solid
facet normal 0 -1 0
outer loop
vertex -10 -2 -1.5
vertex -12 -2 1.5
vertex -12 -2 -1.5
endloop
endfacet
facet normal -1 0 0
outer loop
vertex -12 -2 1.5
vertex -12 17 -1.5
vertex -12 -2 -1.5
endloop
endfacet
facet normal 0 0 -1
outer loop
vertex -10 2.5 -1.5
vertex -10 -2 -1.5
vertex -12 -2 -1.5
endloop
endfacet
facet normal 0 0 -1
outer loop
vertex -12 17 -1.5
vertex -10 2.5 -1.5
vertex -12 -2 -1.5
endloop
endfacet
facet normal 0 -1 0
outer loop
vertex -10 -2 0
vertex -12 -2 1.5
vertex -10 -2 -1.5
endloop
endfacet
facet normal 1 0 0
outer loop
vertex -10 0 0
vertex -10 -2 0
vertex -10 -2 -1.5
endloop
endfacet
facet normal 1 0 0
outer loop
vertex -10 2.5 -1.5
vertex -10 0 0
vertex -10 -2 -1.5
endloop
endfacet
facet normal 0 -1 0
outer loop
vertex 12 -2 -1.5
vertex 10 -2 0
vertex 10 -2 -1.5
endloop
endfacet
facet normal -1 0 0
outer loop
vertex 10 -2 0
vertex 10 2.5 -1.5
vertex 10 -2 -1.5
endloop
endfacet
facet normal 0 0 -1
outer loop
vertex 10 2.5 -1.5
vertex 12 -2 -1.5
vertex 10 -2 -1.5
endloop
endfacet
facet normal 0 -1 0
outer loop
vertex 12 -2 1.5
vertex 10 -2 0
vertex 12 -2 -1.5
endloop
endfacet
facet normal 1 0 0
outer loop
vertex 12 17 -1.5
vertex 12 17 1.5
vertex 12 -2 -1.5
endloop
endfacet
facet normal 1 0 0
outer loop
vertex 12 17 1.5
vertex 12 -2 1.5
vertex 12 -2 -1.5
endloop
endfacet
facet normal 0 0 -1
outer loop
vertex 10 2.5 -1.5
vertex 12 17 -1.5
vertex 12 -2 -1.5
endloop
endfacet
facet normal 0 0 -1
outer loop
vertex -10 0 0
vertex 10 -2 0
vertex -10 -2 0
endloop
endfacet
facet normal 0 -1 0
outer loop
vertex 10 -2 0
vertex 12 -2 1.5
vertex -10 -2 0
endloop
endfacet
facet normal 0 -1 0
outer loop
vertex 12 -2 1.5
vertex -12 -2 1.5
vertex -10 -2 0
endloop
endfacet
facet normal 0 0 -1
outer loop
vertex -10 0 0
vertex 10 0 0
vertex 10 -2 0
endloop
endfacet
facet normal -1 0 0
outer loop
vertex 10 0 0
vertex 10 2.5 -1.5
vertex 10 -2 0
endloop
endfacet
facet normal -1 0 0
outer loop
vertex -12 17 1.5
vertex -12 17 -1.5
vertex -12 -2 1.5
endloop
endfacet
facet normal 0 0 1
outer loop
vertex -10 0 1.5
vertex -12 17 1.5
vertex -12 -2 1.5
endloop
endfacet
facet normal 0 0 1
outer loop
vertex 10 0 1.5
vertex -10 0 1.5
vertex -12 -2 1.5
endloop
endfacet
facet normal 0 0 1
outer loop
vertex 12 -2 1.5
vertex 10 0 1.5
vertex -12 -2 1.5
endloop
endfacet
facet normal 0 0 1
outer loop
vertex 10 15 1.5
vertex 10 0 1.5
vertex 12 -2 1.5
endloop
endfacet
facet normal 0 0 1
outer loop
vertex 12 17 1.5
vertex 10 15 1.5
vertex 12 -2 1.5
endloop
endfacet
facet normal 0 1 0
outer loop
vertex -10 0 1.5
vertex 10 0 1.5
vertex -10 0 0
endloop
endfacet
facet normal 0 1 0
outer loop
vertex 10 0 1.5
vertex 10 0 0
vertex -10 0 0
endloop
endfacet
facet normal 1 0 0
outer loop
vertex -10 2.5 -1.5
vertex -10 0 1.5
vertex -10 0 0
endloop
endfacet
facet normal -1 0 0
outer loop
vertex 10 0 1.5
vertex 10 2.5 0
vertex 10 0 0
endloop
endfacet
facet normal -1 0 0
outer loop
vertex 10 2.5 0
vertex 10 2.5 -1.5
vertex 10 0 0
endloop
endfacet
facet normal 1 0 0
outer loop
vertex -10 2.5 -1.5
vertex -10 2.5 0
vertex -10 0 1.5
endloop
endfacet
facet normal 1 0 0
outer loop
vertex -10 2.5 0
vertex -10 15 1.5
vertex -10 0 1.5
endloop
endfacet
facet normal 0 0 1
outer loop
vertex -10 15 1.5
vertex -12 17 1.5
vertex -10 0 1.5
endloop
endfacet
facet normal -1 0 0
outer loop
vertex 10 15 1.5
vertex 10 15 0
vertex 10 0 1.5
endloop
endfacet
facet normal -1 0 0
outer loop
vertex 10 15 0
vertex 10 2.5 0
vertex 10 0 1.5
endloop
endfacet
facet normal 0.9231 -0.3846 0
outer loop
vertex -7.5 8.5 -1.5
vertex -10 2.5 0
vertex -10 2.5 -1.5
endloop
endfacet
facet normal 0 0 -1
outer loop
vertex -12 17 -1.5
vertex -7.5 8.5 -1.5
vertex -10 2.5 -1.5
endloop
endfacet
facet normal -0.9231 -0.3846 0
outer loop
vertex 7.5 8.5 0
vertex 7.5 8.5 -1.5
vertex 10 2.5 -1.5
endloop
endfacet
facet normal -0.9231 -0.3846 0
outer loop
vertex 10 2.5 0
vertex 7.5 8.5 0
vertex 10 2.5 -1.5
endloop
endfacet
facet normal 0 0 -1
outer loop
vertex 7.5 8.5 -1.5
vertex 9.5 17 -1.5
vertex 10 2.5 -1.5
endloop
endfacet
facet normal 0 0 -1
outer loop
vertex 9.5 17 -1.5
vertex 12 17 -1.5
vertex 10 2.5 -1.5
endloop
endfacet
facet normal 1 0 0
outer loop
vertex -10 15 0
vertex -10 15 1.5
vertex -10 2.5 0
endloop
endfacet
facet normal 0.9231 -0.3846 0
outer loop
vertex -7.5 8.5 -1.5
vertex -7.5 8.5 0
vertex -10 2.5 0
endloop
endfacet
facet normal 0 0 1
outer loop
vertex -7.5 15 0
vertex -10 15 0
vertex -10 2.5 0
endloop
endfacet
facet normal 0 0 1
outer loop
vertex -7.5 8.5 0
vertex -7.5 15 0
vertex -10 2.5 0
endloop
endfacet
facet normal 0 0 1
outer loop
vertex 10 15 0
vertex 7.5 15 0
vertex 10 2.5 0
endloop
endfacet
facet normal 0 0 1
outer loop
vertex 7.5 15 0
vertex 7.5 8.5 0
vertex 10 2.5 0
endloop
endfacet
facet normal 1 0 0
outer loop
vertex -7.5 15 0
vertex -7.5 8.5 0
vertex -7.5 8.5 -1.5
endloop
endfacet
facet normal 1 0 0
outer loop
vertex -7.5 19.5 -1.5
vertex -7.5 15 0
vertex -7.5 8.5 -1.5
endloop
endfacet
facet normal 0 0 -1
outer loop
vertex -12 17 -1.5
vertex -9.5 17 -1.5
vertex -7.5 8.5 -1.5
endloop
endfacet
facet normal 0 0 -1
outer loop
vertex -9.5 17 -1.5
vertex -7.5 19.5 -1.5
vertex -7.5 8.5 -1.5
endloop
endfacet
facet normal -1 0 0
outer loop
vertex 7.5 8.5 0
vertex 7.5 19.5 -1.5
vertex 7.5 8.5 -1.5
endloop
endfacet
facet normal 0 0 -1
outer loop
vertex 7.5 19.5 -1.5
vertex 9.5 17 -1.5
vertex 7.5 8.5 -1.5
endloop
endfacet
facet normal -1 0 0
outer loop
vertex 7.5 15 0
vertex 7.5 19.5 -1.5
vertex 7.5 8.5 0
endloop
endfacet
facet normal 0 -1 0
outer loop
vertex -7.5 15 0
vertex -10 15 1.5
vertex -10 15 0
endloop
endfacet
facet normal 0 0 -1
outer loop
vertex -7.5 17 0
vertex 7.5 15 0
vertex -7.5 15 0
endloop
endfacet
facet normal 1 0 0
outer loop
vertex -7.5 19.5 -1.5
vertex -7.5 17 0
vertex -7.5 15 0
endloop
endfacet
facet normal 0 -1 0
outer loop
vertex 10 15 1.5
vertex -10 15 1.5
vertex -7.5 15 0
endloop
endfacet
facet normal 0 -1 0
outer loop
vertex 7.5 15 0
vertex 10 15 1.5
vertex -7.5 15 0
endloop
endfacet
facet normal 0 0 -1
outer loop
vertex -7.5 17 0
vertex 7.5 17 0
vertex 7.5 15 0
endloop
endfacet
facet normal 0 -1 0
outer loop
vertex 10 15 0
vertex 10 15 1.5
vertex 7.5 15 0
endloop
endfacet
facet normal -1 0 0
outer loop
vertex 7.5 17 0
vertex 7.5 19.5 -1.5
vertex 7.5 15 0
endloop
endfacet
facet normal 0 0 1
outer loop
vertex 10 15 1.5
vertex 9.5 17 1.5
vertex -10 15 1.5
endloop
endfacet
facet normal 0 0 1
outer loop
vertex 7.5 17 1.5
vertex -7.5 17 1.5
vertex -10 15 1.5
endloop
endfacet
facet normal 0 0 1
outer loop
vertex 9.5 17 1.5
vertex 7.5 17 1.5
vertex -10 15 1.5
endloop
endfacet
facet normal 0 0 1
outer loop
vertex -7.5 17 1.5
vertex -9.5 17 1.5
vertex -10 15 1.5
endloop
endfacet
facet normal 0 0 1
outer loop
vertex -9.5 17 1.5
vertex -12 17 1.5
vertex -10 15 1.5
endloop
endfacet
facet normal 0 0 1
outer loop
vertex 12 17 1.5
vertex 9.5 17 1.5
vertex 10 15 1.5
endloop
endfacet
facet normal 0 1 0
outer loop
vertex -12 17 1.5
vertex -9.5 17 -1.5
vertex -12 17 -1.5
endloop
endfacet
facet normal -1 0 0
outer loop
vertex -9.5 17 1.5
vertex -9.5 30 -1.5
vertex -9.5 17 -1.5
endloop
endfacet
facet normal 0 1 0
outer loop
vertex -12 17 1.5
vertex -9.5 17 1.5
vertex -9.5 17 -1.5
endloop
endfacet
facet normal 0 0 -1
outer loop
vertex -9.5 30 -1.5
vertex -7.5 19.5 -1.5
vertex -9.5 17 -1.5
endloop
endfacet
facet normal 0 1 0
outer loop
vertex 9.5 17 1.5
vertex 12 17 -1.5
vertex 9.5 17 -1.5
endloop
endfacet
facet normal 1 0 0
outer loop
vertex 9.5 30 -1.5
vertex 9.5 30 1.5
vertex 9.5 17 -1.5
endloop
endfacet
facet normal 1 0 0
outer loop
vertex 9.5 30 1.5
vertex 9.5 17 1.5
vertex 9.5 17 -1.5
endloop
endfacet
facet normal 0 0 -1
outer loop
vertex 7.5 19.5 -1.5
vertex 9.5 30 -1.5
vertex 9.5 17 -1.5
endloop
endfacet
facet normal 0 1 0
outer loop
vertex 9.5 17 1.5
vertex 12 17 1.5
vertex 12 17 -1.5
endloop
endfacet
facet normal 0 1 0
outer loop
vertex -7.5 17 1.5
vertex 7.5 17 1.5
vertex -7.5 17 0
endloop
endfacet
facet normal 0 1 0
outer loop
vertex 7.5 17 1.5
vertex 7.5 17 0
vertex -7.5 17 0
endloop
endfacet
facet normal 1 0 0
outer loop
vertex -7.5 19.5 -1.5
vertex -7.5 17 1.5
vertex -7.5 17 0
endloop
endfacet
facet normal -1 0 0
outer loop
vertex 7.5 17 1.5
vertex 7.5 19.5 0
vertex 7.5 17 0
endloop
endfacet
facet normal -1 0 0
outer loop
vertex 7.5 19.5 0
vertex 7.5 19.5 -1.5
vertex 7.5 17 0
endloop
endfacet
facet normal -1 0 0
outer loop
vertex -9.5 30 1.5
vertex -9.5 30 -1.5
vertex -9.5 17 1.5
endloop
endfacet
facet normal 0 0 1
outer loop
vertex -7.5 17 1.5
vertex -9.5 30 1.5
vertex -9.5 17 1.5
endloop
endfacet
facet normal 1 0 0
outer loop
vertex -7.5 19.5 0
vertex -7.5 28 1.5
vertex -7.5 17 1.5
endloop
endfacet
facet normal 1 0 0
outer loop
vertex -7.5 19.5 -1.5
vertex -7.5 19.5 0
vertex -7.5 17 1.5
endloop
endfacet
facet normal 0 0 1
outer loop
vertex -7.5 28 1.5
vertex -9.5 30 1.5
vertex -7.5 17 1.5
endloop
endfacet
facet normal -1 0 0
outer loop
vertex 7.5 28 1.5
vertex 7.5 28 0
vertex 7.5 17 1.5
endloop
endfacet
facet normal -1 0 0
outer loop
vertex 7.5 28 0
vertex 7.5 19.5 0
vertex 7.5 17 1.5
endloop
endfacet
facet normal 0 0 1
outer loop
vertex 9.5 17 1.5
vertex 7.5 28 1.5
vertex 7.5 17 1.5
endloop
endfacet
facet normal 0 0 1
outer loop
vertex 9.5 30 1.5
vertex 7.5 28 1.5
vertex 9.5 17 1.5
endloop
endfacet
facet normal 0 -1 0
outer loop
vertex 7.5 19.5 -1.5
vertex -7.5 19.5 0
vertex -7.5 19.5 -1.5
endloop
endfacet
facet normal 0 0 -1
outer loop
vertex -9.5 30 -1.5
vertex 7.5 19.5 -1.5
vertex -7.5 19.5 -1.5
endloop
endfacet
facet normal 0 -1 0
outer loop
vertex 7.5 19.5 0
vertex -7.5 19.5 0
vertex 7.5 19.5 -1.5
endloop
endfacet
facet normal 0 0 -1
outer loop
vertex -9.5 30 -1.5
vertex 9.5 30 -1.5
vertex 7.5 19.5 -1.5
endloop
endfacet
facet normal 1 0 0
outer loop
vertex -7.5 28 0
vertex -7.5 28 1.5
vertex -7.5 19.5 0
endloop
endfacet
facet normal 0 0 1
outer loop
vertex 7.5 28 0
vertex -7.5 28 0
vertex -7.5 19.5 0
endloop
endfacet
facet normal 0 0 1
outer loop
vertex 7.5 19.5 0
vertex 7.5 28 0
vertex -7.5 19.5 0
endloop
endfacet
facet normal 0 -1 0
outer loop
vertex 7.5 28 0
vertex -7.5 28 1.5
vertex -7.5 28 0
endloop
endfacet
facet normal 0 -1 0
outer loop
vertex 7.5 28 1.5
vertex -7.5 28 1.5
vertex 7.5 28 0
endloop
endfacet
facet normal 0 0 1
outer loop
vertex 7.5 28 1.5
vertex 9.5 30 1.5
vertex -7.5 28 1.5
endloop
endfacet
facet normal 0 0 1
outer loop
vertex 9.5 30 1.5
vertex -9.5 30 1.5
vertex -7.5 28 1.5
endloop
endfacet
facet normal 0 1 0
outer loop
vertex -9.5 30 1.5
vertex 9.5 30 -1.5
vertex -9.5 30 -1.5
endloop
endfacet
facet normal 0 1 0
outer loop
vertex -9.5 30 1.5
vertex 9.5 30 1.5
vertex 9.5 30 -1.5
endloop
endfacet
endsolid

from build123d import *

# Parameters (mm, degrees)
ESBO_O1_W                = 20
ESBO_O1_H                = 15
ESBO_O1_W_2              = 15
ESBO_O1_H_2              = 11
RESSALTO_EXTRUS_O1_DEPTH = 1.5
RESSALTO_EXTRUS_O2_DEPTH = 1.5


with BuildPart() as part:
    # Esboço1 → Ressalto-extrusão1 (new body)
    with BuildSketch(Plane.XY):
        Polygon((12, -2), (12, 17), (9.5, 17), (9.5, 30), (-9.5, 30), (-9.5, 17), (-12, 17), (-12, -2), align=None)
        with Locations((0, 7.5)):
            Rectangle(ESBO_O1_W, ESBO_O1_H, mode=Mode.SUBTRACT)
        with Locations((0, 22.5)):
            Rectangle(ESBO_O1_W_2, ESBO_O1_H_2, mode=Mode.SUBTRACT)
    extrude(amount=RESSALTO_EXTRUS_O1_DEPTH)

    # Esboço1<4> → Ressalto-extrusão2 (add)
    with BuildSketch(Plane.XY):
        Polygon((10, 2.5), (10, -2), (12, -2), (12, 17), (9.5, 17), (9.5, 30), (-9.5, 30), (-9.5, 17), (-12, 17), (-12, -2), (-10, -2), (-10, 2.5), (-7.5, 8.5), (-7.5, 19.5), (7.5, 19.5), (7.5, 8.5), align=None)
    extrude(amount=-RESSALTO_EXTRUS_O2_DEPTH)


solid = part.part
